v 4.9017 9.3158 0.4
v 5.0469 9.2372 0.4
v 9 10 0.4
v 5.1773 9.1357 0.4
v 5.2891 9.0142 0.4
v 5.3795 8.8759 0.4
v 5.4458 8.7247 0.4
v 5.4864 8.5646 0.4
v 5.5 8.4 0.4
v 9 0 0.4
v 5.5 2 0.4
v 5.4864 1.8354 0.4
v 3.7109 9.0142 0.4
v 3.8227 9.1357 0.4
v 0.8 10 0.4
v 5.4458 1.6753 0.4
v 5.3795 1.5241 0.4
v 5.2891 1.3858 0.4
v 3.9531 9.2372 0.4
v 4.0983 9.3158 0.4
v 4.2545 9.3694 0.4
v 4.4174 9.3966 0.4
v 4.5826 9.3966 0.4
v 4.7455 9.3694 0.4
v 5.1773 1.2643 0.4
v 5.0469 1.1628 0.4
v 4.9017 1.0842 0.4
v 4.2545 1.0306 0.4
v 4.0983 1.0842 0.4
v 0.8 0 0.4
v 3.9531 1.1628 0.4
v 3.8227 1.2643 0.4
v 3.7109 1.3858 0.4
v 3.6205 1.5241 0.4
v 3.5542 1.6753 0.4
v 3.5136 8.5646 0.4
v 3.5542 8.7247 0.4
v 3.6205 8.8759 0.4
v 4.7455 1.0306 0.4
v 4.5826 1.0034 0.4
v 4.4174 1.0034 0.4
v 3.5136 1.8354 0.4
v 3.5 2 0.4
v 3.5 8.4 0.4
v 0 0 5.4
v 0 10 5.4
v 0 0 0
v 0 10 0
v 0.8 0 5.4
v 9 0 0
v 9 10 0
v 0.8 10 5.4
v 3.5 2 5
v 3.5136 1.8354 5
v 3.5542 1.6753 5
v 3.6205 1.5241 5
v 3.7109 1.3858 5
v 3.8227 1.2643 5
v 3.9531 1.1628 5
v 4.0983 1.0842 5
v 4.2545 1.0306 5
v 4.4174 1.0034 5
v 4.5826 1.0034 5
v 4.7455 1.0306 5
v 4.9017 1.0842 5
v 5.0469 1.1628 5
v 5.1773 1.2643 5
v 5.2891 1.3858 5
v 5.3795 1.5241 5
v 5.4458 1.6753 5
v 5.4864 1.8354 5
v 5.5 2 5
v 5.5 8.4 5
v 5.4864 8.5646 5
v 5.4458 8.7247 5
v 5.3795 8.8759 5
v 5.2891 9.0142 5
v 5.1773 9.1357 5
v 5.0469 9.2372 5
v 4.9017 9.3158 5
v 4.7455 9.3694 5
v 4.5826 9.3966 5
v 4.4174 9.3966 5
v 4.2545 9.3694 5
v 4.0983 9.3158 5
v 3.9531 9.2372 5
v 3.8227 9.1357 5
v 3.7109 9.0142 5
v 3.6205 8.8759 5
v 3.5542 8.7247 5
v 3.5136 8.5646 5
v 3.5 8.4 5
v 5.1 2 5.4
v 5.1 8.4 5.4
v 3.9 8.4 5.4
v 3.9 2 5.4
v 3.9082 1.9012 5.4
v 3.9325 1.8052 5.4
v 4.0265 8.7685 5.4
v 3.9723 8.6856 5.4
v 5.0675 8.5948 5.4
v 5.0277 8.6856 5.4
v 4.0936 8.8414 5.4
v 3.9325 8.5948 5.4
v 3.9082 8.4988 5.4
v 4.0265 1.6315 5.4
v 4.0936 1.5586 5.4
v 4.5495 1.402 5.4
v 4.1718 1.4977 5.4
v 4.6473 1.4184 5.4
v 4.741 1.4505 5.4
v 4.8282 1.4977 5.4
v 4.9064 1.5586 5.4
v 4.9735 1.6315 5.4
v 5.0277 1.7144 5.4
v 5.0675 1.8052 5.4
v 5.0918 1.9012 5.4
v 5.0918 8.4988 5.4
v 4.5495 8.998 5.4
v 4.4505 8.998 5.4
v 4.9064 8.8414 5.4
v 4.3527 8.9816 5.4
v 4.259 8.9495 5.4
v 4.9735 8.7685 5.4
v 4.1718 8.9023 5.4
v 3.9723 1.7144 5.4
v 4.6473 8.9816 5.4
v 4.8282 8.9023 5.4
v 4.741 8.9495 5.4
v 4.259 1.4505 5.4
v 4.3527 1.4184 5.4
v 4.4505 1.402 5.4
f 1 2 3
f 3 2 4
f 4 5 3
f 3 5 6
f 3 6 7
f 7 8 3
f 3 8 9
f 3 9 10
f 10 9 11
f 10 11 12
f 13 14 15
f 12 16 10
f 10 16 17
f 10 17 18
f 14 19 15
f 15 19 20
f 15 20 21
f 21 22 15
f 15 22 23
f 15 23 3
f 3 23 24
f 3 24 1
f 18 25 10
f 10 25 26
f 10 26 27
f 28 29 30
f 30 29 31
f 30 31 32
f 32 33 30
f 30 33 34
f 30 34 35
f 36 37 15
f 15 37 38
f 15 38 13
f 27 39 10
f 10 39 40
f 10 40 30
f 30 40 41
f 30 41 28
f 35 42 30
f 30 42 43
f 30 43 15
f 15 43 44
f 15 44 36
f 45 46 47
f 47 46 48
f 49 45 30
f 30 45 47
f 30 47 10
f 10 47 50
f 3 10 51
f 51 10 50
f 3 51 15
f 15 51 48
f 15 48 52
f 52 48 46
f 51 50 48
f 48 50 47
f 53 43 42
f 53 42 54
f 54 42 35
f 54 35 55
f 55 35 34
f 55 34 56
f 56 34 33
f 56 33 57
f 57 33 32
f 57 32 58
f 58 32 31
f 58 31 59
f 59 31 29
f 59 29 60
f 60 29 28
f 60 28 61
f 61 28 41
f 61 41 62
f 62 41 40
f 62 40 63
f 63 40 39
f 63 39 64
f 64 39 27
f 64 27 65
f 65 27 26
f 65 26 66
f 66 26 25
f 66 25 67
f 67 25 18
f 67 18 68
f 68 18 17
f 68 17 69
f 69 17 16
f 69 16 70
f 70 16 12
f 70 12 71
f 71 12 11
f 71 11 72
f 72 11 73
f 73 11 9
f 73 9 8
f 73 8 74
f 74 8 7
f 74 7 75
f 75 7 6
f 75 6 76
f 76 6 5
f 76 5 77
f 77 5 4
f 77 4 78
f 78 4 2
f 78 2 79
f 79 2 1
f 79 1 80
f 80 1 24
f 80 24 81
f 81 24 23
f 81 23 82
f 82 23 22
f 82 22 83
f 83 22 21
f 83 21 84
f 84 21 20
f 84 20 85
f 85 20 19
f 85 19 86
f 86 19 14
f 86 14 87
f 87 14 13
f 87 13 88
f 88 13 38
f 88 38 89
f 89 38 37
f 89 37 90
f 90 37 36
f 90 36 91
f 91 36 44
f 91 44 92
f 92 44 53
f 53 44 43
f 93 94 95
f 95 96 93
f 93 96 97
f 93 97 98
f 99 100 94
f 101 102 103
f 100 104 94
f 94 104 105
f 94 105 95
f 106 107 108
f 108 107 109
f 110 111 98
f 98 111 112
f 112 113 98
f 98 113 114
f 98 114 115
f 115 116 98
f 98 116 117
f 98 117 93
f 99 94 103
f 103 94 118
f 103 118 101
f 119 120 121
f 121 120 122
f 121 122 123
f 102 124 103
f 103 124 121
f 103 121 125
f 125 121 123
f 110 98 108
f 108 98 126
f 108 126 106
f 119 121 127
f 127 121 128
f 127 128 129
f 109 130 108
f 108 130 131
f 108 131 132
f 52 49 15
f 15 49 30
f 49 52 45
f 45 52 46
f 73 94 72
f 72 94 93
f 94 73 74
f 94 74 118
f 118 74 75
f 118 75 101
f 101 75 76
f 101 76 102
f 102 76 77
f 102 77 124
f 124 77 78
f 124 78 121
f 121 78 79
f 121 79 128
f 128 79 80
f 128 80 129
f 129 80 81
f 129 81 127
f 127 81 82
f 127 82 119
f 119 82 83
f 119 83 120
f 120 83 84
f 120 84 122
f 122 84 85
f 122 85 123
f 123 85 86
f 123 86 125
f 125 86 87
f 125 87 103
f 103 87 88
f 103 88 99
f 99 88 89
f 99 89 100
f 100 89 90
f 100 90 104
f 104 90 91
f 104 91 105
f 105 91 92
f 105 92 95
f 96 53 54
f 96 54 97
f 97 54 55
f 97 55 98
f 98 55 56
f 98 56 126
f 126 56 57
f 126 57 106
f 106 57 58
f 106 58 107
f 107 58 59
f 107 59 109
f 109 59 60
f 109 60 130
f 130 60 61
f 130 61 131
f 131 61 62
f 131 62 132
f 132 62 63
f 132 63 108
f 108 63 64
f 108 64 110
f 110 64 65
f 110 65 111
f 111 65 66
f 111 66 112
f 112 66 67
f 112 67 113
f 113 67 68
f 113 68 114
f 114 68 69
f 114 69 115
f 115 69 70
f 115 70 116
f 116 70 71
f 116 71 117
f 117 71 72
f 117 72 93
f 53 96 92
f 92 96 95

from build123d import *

# Parameters (mm, degrees)
SKETCH1_W           = 9
SKETCH1_H           = 10
BOSS_EXTRUDE1_DEPTH = 0.4
BOSS_EXTRUDE2_DEPTH = 5
SKETCH4_W           = 0.8
SKETCH4_H           = 10
BOSS_EXTRUDE3_DEPTH = 5
CHAMFER1_SIZE       = 0.4


with BuildPart() as part:
    # Sketch1 → Boss-Extrude1 (new body)
    with BuildSketch(Plane.XY):
        with Locations((4.5, 5)):
            Rectangle(SKETCH1_W, SKETCH1_H)
    extrude(amount=BOSS_EXTRUDE1_DEPTH)

    # Sketch3 → Boss-Extrude2 (add)
    with BuildSketch(Plane.XY.offset(0.4)):
        with BuildLine():
            Line((3.5, 2), (3.5, 8.4))
            ThreePointArc((3.5, 8.4), (4.5, 9.4), (5.5, 8.4))
            Line((5.5, 8.4), (5.5, 2))
            ThreePointArc((5.5, 2), (4.5, 1), (3.5, 2))
        make_face()
    extrude(amount=BOSS_EXTRUDE2_DEPTH)

    # Sketch4 → Boss-Extrude3 (add)
    with BuildSketch(Plane.XY.offset(0.4)):
        with Locations((0.4, 5)):
            Rectangle(SKETCH4_W, SKETCH4_H)
    extrude(amount=BOSS_EXTRUDE3_DEPTH)

    # Chamfer1
    chamfer1_edges = [part.edges().sort_by_distance(p)[0] for p in [
        (4.5, 1, 5.4),
        (5.5, 5.2, 5.4),
        (4.5, 9.4, 5.4),
        (3.5, 5.2, 5.4),
    ]]
    chamfer(chamfer1_edges, length=CHAMFER1_SIZE)


solid = part.part
